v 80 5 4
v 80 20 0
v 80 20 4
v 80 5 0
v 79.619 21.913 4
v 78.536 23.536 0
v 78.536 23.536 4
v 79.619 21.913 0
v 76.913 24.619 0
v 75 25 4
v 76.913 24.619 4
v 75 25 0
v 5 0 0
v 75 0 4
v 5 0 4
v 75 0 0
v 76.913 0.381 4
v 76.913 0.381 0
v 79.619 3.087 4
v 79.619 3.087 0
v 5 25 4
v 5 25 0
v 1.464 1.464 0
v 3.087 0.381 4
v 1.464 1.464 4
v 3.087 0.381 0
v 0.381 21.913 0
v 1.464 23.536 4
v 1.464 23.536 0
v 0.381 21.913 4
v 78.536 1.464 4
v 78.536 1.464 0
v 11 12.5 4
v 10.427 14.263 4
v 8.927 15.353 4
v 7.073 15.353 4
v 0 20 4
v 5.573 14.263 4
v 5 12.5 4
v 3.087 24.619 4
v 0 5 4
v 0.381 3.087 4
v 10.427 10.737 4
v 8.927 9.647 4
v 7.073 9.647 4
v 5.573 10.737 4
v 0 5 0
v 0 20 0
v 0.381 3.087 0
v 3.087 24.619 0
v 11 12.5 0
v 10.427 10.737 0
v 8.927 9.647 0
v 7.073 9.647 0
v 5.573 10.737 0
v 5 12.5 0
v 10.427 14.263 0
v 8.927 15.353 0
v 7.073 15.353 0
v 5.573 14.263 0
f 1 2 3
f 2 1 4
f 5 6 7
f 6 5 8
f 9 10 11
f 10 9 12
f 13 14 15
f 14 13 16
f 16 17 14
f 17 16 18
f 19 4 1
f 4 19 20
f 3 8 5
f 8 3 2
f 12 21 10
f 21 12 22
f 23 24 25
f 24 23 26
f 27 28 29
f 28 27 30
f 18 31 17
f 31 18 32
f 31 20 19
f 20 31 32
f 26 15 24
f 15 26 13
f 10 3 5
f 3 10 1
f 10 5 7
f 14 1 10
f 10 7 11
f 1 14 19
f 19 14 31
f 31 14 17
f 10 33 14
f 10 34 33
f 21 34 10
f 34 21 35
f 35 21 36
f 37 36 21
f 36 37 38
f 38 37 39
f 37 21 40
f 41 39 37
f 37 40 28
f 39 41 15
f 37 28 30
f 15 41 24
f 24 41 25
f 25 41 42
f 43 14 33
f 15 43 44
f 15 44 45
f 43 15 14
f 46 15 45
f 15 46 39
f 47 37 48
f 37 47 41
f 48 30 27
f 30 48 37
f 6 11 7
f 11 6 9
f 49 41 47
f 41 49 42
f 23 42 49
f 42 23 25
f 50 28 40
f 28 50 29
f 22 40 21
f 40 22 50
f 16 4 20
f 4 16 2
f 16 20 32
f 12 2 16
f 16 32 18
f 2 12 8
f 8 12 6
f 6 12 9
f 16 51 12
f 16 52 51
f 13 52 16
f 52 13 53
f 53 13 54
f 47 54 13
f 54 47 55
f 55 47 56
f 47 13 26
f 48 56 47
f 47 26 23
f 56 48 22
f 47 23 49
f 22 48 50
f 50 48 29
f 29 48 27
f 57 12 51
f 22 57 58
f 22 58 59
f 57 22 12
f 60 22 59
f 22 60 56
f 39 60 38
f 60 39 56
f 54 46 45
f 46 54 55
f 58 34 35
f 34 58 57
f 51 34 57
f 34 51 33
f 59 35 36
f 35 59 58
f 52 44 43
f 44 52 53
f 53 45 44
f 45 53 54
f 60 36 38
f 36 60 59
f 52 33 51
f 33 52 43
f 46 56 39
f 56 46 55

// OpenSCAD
// Name Tag Plate - Odin's 3D Prints
// Simple rectangular plate for names

plate_width = 80;
plate_height = 25;
plate_depth = 4;
hole_radius = 3;

// Simple name tag with hole for keychain
difference() {
    // Main plate with rounded corners
    hull() {
        translate([5, 5, 0])
        cylinder(h=plate_depth, r=5, center=false);
        translate([plate_width-5, 5, 0])
        cylinder(h=plate_depth, r=5, center=false);
        translate([5, plate_height-5, 0])
        cylinder(h=plate_depth, r=5, center=false);
        translate([plate_width-5, plate_height-5, 0])
        cylinder(h=plate_depth, r=5, center=false);
    }
    
    // Keychain hole
    translate([8, plate_height/2, -1])
    cylinder(h=plate_depth + 2, r=hole_radius, center=false);
}
